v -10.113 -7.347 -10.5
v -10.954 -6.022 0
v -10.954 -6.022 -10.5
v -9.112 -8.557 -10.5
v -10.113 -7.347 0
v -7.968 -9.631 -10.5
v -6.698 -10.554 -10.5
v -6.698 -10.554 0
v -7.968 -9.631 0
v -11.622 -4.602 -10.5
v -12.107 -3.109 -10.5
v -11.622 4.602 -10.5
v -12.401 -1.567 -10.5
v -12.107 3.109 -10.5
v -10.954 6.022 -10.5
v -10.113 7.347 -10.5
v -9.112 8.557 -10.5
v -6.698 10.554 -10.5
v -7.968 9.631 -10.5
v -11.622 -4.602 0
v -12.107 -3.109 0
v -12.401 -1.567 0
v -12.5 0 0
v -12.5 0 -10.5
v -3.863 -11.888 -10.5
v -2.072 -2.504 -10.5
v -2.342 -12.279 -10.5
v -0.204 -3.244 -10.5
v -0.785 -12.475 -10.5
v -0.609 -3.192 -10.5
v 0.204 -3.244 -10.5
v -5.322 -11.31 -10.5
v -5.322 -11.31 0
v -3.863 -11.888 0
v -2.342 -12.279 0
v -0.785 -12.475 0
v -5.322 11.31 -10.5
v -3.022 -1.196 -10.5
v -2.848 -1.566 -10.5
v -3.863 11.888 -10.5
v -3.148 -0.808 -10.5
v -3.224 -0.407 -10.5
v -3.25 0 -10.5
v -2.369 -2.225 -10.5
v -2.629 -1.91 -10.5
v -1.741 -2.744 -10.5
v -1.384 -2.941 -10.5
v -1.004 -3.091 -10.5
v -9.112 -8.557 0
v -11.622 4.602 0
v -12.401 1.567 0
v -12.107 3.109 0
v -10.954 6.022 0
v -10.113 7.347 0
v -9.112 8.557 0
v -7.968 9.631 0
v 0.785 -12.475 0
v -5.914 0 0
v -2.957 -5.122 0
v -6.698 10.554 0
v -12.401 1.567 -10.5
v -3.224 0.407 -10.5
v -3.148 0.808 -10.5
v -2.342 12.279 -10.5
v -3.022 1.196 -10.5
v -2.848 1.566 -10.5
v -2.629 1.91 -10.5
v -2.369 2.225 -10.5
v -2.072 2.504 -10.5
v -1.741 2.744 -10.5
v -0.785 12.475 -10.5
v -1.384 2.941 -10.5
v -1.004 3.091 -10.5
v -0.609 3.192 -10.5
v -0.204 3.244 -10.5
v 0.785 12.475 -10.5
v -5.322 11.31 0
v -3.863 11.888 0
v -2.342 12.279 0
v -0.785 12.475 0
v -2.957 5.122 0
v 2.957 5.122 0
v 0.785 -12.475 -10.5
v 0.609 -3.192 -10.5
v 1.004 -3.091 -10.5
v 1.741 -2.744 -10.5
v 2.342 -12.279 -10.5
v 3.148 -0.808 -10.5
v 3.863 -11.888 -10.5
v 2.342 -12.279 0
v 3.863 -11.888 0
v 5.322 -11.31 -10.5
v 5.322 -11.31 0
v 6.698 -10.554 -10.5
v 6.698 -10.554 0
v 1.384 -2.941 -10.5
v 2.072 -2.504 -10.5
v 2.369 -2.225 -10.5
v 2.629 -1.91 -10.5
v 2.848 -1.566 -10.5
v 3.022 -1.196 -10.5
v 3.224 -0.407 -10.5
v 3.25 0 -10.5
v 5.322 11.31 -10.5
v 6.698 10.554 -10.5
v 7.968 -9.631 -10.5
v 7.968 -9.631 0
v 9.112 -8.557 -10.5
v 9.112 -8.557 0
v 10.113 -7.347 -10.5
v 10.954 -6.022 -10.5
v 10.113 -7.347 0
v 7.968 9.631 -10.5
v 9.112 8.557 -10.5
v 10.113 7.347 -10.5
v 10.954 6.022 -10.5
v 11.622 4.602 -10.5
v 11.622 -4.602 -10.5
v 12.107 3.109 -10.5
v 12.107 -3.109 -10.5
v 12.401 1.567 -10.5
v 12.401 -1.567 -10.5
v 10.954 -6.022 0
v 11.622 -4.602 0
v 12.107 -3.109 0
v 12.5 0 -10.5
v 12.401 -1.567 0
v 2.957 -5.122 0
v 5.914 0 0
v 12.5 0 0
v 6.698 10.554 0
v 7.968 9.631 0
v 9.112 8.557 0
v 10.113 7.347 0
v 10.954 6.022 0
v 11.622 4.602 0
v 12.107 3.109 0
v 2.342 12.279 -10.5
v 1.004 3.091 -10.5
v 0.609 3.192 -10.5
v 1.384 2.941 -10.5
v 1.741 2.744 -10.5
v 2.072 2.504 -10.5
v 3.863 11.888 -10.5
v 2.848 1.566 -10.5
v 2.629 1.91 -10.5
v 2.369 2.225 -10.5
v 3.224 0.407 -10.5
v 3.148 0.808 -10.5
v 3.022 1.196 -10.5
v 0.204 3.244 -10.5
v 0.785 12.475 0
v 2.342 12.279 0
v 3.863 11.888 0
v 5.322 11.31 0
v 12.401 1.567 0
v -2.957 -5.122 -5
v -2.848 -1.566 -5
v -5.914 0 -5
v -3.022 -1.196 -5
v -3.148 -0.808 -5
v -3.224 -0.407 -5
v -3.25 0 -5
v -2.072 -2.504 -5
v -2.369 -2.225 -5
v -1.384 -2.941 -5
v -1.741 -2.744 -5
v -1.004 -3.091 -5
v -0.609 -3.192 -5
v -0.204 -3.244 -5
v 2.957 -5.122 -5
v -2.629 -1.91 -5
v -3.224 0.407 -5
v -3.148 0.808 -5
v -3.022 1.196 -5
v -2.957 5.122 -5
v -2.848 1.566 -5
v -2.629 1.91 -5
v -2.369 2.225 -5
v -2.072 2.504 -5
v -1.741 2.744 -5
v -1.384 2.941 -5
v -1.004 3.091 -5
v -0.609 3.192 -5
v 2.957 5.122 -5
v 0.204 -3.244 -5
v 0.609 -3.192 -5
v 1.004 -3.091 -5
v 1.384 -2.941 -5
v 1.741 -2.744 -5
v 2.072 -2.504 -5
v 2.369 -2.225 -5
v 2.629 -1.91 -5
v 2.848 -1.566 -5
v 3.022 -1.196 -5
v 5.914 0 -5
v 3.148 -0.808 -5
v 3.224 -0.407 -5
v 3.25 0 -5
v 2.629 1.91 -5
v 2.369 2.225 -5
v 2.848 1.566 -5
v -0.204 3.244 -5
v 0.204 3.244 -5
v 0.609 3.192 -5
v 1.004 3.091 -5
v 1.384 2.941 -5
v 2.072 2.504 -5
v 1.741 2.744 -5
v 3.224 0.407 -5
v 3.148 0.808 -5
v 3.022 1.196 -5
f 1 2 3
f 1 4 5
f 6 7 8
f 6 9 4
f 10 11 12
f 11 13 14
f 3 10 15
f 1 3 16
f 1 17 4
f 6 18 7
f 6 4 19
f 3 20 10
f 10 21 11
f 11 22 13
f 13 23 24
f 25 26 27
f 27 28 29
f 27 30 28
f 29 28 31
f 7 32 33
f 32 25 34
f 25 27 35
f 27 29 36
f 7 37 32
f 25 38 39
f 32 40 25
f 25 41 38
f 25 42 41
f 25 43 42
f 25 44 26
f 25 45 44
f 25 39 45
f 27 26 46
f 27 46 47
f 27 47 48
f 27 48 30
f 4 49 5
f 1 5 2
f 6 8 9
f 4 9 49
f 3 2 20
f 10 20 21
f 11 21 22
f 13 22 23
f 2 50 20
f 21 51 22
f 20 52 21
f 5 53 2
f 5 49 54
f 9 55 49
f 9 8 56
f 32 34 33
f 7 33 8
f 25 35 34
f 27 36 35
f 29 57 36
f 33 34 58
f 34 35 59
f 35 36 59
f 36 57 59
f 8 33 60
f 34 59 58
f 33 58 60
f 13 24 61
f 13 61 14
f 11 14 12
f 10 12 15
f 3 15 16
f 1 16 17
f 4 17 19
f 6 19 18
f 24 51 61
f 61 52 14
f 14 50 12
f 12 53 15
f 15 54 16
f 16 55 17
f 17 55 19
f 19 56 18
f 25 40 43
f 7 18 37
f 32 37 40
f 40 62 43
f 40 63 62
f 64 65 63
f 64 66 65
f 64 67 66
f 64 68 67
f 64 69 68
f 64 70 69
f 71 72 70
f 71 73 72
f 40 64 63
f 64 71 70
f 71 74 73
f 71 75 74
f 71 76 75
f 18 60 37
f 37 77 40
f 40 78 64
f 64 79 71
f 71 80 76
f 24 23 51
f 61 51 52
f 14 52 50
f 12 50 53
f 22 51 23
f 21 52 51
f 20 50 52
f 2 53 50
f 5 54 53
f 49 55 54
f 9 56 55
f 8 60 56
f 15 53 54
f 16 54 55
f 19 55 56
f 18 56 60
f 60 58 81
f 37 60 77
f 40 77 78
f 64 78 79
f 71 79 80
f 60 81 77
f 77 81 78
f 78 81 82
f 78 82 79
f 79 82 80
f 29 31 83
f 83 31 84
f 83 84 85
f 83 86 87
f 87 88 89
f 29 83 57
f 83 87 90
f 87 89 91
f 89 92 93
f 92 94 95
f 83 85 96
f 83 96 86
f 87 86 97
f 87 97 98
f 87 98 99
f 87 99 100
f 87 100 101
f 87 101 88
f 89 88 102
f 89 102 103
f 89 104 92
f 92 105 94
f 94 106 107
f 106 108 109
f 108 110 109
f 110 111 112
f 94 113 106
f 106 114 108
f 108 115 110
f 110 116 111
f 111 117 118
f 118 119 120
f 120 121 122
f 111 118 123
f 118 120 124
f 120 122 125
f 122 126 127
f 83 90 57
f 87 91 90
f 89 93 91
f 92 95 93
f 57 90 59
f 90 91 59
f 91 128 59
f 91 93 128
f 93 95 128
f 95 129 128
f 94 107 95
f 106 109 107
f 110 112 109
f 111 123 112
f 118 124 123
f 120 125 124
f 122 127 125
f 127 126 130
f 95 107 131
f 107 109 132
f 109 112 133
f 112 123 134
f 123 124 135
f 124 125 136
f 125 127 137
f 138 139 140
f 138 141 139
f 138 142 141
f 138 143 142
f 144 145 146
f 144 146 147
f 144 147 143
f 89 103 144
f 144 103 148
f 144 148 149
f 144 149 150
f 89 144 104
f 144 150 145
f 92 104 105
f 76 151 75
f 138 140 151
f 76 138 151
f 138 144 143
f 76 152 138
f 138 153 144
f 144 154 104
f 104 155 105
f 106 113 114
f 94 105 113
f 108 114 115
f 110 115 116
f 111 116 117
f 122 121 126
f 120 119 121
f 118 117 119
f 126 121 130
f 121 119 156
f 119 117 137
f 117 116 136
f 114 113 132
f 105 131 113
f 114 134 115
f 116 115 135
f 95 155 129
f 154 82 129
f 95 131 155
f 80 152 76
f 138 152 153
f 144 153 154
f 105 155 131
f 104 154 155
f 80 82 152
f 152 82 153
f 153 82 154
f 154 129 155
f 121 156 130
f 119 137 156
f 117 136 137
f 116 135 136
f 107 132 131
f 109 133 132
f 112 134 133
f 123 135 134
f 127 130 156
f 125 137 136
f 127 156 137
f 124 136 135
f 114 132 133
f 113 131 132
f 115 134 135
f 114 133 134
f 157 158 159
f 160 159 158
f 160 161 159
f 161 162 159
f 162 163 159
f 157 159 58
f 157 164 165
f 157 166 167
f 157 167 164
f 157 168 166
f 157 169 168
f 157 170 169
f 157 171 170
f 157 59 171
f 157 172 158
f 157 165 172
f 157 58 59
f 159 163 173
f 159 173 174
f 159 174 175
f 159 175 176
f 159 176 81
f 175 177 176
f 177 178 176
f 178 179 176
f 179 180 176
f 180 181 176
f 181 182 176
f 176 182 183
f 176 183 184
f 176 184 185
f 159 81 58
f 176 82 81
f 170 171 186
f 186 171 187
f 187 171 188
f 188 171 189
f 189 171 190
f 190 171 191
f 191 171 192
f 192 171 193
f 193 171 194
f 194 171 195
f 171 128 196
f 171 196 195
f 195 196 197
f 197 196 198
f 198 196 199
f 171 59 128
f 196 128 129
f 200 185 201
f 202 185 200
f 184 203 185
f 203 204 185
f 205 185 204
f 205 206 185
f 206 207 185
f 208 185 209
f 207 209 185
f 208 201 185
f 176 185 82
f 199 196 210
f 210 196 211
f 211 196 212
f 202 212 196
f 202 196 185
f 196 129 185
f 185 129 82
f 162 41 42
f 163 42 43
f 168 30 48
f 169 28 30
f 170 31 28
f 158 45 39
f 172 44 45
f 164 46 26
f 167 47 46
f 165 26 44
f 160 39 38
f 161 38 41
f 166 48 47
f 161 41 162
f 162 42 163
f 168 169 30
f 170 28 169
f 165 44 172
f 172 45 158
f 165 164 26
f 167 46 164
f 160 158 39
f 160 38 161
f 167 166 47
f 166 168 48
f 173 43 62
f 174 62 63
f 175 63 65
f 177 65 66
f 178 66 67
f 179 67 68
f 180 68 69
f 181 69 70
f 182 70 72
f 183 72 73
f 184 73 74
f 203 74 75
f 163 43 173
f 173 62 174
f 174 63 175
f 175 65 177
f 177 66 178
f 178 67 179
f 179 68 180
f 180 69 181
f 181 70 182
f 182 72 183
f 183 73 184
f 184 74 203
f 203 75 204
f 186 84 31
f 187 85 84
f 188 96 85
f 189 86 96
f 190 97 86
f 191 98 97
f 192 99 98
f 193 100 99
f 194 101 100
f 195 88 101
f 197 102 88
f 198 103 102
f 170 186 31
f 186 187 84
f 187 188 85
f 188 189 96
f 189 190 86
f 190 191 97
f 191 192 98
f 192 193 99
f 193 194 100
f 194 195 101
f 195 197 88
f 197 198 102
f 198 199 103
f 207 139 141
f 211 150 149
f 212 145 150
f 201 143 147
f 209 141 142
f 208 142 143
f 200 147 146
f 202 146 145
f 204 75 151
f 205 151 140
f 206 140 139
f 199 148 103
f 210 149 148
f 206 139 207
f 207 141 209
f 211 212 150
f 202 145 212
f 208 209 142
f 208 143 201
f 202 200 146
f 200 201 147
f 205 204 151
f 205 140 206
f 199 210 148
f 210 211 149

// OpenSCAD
$fn = 50;

difference() {
	union() {
		translate(v = [0, 0, -10.5]) {
			cylinder(h = 10.5, r = 12.5);
		}
		#translate(v = [0, 0, -12.0]) {
			cylinder(h = 12, r = 2.875);
		}
	}
	union() {
		translate(v = [0, 0, 0]) {
			rotate(a = [0, 0, 0]) {
				difference() {
					union() {
						translate(v = [0, 0, -5]) {
							linear_extrude(height = 5) {
								polygon(points = [[5.914249999999999, 0.0], [2.957125, 5.1218907443321156], [-2.9571249999999982, 5.1218907443321156], [-5.914249999999999, 7.242867331857232e-16], [-2.9571250000000022, -5.121890744332115], [2.9571249999999956, -5.121890744332118]]);
							}
						}
					}
					union();
				}
			}
		}
		#translate(v = [0, 0, -100.0]) {
			cylinder(h = 200, r = 3.25);
		}
	}
}
